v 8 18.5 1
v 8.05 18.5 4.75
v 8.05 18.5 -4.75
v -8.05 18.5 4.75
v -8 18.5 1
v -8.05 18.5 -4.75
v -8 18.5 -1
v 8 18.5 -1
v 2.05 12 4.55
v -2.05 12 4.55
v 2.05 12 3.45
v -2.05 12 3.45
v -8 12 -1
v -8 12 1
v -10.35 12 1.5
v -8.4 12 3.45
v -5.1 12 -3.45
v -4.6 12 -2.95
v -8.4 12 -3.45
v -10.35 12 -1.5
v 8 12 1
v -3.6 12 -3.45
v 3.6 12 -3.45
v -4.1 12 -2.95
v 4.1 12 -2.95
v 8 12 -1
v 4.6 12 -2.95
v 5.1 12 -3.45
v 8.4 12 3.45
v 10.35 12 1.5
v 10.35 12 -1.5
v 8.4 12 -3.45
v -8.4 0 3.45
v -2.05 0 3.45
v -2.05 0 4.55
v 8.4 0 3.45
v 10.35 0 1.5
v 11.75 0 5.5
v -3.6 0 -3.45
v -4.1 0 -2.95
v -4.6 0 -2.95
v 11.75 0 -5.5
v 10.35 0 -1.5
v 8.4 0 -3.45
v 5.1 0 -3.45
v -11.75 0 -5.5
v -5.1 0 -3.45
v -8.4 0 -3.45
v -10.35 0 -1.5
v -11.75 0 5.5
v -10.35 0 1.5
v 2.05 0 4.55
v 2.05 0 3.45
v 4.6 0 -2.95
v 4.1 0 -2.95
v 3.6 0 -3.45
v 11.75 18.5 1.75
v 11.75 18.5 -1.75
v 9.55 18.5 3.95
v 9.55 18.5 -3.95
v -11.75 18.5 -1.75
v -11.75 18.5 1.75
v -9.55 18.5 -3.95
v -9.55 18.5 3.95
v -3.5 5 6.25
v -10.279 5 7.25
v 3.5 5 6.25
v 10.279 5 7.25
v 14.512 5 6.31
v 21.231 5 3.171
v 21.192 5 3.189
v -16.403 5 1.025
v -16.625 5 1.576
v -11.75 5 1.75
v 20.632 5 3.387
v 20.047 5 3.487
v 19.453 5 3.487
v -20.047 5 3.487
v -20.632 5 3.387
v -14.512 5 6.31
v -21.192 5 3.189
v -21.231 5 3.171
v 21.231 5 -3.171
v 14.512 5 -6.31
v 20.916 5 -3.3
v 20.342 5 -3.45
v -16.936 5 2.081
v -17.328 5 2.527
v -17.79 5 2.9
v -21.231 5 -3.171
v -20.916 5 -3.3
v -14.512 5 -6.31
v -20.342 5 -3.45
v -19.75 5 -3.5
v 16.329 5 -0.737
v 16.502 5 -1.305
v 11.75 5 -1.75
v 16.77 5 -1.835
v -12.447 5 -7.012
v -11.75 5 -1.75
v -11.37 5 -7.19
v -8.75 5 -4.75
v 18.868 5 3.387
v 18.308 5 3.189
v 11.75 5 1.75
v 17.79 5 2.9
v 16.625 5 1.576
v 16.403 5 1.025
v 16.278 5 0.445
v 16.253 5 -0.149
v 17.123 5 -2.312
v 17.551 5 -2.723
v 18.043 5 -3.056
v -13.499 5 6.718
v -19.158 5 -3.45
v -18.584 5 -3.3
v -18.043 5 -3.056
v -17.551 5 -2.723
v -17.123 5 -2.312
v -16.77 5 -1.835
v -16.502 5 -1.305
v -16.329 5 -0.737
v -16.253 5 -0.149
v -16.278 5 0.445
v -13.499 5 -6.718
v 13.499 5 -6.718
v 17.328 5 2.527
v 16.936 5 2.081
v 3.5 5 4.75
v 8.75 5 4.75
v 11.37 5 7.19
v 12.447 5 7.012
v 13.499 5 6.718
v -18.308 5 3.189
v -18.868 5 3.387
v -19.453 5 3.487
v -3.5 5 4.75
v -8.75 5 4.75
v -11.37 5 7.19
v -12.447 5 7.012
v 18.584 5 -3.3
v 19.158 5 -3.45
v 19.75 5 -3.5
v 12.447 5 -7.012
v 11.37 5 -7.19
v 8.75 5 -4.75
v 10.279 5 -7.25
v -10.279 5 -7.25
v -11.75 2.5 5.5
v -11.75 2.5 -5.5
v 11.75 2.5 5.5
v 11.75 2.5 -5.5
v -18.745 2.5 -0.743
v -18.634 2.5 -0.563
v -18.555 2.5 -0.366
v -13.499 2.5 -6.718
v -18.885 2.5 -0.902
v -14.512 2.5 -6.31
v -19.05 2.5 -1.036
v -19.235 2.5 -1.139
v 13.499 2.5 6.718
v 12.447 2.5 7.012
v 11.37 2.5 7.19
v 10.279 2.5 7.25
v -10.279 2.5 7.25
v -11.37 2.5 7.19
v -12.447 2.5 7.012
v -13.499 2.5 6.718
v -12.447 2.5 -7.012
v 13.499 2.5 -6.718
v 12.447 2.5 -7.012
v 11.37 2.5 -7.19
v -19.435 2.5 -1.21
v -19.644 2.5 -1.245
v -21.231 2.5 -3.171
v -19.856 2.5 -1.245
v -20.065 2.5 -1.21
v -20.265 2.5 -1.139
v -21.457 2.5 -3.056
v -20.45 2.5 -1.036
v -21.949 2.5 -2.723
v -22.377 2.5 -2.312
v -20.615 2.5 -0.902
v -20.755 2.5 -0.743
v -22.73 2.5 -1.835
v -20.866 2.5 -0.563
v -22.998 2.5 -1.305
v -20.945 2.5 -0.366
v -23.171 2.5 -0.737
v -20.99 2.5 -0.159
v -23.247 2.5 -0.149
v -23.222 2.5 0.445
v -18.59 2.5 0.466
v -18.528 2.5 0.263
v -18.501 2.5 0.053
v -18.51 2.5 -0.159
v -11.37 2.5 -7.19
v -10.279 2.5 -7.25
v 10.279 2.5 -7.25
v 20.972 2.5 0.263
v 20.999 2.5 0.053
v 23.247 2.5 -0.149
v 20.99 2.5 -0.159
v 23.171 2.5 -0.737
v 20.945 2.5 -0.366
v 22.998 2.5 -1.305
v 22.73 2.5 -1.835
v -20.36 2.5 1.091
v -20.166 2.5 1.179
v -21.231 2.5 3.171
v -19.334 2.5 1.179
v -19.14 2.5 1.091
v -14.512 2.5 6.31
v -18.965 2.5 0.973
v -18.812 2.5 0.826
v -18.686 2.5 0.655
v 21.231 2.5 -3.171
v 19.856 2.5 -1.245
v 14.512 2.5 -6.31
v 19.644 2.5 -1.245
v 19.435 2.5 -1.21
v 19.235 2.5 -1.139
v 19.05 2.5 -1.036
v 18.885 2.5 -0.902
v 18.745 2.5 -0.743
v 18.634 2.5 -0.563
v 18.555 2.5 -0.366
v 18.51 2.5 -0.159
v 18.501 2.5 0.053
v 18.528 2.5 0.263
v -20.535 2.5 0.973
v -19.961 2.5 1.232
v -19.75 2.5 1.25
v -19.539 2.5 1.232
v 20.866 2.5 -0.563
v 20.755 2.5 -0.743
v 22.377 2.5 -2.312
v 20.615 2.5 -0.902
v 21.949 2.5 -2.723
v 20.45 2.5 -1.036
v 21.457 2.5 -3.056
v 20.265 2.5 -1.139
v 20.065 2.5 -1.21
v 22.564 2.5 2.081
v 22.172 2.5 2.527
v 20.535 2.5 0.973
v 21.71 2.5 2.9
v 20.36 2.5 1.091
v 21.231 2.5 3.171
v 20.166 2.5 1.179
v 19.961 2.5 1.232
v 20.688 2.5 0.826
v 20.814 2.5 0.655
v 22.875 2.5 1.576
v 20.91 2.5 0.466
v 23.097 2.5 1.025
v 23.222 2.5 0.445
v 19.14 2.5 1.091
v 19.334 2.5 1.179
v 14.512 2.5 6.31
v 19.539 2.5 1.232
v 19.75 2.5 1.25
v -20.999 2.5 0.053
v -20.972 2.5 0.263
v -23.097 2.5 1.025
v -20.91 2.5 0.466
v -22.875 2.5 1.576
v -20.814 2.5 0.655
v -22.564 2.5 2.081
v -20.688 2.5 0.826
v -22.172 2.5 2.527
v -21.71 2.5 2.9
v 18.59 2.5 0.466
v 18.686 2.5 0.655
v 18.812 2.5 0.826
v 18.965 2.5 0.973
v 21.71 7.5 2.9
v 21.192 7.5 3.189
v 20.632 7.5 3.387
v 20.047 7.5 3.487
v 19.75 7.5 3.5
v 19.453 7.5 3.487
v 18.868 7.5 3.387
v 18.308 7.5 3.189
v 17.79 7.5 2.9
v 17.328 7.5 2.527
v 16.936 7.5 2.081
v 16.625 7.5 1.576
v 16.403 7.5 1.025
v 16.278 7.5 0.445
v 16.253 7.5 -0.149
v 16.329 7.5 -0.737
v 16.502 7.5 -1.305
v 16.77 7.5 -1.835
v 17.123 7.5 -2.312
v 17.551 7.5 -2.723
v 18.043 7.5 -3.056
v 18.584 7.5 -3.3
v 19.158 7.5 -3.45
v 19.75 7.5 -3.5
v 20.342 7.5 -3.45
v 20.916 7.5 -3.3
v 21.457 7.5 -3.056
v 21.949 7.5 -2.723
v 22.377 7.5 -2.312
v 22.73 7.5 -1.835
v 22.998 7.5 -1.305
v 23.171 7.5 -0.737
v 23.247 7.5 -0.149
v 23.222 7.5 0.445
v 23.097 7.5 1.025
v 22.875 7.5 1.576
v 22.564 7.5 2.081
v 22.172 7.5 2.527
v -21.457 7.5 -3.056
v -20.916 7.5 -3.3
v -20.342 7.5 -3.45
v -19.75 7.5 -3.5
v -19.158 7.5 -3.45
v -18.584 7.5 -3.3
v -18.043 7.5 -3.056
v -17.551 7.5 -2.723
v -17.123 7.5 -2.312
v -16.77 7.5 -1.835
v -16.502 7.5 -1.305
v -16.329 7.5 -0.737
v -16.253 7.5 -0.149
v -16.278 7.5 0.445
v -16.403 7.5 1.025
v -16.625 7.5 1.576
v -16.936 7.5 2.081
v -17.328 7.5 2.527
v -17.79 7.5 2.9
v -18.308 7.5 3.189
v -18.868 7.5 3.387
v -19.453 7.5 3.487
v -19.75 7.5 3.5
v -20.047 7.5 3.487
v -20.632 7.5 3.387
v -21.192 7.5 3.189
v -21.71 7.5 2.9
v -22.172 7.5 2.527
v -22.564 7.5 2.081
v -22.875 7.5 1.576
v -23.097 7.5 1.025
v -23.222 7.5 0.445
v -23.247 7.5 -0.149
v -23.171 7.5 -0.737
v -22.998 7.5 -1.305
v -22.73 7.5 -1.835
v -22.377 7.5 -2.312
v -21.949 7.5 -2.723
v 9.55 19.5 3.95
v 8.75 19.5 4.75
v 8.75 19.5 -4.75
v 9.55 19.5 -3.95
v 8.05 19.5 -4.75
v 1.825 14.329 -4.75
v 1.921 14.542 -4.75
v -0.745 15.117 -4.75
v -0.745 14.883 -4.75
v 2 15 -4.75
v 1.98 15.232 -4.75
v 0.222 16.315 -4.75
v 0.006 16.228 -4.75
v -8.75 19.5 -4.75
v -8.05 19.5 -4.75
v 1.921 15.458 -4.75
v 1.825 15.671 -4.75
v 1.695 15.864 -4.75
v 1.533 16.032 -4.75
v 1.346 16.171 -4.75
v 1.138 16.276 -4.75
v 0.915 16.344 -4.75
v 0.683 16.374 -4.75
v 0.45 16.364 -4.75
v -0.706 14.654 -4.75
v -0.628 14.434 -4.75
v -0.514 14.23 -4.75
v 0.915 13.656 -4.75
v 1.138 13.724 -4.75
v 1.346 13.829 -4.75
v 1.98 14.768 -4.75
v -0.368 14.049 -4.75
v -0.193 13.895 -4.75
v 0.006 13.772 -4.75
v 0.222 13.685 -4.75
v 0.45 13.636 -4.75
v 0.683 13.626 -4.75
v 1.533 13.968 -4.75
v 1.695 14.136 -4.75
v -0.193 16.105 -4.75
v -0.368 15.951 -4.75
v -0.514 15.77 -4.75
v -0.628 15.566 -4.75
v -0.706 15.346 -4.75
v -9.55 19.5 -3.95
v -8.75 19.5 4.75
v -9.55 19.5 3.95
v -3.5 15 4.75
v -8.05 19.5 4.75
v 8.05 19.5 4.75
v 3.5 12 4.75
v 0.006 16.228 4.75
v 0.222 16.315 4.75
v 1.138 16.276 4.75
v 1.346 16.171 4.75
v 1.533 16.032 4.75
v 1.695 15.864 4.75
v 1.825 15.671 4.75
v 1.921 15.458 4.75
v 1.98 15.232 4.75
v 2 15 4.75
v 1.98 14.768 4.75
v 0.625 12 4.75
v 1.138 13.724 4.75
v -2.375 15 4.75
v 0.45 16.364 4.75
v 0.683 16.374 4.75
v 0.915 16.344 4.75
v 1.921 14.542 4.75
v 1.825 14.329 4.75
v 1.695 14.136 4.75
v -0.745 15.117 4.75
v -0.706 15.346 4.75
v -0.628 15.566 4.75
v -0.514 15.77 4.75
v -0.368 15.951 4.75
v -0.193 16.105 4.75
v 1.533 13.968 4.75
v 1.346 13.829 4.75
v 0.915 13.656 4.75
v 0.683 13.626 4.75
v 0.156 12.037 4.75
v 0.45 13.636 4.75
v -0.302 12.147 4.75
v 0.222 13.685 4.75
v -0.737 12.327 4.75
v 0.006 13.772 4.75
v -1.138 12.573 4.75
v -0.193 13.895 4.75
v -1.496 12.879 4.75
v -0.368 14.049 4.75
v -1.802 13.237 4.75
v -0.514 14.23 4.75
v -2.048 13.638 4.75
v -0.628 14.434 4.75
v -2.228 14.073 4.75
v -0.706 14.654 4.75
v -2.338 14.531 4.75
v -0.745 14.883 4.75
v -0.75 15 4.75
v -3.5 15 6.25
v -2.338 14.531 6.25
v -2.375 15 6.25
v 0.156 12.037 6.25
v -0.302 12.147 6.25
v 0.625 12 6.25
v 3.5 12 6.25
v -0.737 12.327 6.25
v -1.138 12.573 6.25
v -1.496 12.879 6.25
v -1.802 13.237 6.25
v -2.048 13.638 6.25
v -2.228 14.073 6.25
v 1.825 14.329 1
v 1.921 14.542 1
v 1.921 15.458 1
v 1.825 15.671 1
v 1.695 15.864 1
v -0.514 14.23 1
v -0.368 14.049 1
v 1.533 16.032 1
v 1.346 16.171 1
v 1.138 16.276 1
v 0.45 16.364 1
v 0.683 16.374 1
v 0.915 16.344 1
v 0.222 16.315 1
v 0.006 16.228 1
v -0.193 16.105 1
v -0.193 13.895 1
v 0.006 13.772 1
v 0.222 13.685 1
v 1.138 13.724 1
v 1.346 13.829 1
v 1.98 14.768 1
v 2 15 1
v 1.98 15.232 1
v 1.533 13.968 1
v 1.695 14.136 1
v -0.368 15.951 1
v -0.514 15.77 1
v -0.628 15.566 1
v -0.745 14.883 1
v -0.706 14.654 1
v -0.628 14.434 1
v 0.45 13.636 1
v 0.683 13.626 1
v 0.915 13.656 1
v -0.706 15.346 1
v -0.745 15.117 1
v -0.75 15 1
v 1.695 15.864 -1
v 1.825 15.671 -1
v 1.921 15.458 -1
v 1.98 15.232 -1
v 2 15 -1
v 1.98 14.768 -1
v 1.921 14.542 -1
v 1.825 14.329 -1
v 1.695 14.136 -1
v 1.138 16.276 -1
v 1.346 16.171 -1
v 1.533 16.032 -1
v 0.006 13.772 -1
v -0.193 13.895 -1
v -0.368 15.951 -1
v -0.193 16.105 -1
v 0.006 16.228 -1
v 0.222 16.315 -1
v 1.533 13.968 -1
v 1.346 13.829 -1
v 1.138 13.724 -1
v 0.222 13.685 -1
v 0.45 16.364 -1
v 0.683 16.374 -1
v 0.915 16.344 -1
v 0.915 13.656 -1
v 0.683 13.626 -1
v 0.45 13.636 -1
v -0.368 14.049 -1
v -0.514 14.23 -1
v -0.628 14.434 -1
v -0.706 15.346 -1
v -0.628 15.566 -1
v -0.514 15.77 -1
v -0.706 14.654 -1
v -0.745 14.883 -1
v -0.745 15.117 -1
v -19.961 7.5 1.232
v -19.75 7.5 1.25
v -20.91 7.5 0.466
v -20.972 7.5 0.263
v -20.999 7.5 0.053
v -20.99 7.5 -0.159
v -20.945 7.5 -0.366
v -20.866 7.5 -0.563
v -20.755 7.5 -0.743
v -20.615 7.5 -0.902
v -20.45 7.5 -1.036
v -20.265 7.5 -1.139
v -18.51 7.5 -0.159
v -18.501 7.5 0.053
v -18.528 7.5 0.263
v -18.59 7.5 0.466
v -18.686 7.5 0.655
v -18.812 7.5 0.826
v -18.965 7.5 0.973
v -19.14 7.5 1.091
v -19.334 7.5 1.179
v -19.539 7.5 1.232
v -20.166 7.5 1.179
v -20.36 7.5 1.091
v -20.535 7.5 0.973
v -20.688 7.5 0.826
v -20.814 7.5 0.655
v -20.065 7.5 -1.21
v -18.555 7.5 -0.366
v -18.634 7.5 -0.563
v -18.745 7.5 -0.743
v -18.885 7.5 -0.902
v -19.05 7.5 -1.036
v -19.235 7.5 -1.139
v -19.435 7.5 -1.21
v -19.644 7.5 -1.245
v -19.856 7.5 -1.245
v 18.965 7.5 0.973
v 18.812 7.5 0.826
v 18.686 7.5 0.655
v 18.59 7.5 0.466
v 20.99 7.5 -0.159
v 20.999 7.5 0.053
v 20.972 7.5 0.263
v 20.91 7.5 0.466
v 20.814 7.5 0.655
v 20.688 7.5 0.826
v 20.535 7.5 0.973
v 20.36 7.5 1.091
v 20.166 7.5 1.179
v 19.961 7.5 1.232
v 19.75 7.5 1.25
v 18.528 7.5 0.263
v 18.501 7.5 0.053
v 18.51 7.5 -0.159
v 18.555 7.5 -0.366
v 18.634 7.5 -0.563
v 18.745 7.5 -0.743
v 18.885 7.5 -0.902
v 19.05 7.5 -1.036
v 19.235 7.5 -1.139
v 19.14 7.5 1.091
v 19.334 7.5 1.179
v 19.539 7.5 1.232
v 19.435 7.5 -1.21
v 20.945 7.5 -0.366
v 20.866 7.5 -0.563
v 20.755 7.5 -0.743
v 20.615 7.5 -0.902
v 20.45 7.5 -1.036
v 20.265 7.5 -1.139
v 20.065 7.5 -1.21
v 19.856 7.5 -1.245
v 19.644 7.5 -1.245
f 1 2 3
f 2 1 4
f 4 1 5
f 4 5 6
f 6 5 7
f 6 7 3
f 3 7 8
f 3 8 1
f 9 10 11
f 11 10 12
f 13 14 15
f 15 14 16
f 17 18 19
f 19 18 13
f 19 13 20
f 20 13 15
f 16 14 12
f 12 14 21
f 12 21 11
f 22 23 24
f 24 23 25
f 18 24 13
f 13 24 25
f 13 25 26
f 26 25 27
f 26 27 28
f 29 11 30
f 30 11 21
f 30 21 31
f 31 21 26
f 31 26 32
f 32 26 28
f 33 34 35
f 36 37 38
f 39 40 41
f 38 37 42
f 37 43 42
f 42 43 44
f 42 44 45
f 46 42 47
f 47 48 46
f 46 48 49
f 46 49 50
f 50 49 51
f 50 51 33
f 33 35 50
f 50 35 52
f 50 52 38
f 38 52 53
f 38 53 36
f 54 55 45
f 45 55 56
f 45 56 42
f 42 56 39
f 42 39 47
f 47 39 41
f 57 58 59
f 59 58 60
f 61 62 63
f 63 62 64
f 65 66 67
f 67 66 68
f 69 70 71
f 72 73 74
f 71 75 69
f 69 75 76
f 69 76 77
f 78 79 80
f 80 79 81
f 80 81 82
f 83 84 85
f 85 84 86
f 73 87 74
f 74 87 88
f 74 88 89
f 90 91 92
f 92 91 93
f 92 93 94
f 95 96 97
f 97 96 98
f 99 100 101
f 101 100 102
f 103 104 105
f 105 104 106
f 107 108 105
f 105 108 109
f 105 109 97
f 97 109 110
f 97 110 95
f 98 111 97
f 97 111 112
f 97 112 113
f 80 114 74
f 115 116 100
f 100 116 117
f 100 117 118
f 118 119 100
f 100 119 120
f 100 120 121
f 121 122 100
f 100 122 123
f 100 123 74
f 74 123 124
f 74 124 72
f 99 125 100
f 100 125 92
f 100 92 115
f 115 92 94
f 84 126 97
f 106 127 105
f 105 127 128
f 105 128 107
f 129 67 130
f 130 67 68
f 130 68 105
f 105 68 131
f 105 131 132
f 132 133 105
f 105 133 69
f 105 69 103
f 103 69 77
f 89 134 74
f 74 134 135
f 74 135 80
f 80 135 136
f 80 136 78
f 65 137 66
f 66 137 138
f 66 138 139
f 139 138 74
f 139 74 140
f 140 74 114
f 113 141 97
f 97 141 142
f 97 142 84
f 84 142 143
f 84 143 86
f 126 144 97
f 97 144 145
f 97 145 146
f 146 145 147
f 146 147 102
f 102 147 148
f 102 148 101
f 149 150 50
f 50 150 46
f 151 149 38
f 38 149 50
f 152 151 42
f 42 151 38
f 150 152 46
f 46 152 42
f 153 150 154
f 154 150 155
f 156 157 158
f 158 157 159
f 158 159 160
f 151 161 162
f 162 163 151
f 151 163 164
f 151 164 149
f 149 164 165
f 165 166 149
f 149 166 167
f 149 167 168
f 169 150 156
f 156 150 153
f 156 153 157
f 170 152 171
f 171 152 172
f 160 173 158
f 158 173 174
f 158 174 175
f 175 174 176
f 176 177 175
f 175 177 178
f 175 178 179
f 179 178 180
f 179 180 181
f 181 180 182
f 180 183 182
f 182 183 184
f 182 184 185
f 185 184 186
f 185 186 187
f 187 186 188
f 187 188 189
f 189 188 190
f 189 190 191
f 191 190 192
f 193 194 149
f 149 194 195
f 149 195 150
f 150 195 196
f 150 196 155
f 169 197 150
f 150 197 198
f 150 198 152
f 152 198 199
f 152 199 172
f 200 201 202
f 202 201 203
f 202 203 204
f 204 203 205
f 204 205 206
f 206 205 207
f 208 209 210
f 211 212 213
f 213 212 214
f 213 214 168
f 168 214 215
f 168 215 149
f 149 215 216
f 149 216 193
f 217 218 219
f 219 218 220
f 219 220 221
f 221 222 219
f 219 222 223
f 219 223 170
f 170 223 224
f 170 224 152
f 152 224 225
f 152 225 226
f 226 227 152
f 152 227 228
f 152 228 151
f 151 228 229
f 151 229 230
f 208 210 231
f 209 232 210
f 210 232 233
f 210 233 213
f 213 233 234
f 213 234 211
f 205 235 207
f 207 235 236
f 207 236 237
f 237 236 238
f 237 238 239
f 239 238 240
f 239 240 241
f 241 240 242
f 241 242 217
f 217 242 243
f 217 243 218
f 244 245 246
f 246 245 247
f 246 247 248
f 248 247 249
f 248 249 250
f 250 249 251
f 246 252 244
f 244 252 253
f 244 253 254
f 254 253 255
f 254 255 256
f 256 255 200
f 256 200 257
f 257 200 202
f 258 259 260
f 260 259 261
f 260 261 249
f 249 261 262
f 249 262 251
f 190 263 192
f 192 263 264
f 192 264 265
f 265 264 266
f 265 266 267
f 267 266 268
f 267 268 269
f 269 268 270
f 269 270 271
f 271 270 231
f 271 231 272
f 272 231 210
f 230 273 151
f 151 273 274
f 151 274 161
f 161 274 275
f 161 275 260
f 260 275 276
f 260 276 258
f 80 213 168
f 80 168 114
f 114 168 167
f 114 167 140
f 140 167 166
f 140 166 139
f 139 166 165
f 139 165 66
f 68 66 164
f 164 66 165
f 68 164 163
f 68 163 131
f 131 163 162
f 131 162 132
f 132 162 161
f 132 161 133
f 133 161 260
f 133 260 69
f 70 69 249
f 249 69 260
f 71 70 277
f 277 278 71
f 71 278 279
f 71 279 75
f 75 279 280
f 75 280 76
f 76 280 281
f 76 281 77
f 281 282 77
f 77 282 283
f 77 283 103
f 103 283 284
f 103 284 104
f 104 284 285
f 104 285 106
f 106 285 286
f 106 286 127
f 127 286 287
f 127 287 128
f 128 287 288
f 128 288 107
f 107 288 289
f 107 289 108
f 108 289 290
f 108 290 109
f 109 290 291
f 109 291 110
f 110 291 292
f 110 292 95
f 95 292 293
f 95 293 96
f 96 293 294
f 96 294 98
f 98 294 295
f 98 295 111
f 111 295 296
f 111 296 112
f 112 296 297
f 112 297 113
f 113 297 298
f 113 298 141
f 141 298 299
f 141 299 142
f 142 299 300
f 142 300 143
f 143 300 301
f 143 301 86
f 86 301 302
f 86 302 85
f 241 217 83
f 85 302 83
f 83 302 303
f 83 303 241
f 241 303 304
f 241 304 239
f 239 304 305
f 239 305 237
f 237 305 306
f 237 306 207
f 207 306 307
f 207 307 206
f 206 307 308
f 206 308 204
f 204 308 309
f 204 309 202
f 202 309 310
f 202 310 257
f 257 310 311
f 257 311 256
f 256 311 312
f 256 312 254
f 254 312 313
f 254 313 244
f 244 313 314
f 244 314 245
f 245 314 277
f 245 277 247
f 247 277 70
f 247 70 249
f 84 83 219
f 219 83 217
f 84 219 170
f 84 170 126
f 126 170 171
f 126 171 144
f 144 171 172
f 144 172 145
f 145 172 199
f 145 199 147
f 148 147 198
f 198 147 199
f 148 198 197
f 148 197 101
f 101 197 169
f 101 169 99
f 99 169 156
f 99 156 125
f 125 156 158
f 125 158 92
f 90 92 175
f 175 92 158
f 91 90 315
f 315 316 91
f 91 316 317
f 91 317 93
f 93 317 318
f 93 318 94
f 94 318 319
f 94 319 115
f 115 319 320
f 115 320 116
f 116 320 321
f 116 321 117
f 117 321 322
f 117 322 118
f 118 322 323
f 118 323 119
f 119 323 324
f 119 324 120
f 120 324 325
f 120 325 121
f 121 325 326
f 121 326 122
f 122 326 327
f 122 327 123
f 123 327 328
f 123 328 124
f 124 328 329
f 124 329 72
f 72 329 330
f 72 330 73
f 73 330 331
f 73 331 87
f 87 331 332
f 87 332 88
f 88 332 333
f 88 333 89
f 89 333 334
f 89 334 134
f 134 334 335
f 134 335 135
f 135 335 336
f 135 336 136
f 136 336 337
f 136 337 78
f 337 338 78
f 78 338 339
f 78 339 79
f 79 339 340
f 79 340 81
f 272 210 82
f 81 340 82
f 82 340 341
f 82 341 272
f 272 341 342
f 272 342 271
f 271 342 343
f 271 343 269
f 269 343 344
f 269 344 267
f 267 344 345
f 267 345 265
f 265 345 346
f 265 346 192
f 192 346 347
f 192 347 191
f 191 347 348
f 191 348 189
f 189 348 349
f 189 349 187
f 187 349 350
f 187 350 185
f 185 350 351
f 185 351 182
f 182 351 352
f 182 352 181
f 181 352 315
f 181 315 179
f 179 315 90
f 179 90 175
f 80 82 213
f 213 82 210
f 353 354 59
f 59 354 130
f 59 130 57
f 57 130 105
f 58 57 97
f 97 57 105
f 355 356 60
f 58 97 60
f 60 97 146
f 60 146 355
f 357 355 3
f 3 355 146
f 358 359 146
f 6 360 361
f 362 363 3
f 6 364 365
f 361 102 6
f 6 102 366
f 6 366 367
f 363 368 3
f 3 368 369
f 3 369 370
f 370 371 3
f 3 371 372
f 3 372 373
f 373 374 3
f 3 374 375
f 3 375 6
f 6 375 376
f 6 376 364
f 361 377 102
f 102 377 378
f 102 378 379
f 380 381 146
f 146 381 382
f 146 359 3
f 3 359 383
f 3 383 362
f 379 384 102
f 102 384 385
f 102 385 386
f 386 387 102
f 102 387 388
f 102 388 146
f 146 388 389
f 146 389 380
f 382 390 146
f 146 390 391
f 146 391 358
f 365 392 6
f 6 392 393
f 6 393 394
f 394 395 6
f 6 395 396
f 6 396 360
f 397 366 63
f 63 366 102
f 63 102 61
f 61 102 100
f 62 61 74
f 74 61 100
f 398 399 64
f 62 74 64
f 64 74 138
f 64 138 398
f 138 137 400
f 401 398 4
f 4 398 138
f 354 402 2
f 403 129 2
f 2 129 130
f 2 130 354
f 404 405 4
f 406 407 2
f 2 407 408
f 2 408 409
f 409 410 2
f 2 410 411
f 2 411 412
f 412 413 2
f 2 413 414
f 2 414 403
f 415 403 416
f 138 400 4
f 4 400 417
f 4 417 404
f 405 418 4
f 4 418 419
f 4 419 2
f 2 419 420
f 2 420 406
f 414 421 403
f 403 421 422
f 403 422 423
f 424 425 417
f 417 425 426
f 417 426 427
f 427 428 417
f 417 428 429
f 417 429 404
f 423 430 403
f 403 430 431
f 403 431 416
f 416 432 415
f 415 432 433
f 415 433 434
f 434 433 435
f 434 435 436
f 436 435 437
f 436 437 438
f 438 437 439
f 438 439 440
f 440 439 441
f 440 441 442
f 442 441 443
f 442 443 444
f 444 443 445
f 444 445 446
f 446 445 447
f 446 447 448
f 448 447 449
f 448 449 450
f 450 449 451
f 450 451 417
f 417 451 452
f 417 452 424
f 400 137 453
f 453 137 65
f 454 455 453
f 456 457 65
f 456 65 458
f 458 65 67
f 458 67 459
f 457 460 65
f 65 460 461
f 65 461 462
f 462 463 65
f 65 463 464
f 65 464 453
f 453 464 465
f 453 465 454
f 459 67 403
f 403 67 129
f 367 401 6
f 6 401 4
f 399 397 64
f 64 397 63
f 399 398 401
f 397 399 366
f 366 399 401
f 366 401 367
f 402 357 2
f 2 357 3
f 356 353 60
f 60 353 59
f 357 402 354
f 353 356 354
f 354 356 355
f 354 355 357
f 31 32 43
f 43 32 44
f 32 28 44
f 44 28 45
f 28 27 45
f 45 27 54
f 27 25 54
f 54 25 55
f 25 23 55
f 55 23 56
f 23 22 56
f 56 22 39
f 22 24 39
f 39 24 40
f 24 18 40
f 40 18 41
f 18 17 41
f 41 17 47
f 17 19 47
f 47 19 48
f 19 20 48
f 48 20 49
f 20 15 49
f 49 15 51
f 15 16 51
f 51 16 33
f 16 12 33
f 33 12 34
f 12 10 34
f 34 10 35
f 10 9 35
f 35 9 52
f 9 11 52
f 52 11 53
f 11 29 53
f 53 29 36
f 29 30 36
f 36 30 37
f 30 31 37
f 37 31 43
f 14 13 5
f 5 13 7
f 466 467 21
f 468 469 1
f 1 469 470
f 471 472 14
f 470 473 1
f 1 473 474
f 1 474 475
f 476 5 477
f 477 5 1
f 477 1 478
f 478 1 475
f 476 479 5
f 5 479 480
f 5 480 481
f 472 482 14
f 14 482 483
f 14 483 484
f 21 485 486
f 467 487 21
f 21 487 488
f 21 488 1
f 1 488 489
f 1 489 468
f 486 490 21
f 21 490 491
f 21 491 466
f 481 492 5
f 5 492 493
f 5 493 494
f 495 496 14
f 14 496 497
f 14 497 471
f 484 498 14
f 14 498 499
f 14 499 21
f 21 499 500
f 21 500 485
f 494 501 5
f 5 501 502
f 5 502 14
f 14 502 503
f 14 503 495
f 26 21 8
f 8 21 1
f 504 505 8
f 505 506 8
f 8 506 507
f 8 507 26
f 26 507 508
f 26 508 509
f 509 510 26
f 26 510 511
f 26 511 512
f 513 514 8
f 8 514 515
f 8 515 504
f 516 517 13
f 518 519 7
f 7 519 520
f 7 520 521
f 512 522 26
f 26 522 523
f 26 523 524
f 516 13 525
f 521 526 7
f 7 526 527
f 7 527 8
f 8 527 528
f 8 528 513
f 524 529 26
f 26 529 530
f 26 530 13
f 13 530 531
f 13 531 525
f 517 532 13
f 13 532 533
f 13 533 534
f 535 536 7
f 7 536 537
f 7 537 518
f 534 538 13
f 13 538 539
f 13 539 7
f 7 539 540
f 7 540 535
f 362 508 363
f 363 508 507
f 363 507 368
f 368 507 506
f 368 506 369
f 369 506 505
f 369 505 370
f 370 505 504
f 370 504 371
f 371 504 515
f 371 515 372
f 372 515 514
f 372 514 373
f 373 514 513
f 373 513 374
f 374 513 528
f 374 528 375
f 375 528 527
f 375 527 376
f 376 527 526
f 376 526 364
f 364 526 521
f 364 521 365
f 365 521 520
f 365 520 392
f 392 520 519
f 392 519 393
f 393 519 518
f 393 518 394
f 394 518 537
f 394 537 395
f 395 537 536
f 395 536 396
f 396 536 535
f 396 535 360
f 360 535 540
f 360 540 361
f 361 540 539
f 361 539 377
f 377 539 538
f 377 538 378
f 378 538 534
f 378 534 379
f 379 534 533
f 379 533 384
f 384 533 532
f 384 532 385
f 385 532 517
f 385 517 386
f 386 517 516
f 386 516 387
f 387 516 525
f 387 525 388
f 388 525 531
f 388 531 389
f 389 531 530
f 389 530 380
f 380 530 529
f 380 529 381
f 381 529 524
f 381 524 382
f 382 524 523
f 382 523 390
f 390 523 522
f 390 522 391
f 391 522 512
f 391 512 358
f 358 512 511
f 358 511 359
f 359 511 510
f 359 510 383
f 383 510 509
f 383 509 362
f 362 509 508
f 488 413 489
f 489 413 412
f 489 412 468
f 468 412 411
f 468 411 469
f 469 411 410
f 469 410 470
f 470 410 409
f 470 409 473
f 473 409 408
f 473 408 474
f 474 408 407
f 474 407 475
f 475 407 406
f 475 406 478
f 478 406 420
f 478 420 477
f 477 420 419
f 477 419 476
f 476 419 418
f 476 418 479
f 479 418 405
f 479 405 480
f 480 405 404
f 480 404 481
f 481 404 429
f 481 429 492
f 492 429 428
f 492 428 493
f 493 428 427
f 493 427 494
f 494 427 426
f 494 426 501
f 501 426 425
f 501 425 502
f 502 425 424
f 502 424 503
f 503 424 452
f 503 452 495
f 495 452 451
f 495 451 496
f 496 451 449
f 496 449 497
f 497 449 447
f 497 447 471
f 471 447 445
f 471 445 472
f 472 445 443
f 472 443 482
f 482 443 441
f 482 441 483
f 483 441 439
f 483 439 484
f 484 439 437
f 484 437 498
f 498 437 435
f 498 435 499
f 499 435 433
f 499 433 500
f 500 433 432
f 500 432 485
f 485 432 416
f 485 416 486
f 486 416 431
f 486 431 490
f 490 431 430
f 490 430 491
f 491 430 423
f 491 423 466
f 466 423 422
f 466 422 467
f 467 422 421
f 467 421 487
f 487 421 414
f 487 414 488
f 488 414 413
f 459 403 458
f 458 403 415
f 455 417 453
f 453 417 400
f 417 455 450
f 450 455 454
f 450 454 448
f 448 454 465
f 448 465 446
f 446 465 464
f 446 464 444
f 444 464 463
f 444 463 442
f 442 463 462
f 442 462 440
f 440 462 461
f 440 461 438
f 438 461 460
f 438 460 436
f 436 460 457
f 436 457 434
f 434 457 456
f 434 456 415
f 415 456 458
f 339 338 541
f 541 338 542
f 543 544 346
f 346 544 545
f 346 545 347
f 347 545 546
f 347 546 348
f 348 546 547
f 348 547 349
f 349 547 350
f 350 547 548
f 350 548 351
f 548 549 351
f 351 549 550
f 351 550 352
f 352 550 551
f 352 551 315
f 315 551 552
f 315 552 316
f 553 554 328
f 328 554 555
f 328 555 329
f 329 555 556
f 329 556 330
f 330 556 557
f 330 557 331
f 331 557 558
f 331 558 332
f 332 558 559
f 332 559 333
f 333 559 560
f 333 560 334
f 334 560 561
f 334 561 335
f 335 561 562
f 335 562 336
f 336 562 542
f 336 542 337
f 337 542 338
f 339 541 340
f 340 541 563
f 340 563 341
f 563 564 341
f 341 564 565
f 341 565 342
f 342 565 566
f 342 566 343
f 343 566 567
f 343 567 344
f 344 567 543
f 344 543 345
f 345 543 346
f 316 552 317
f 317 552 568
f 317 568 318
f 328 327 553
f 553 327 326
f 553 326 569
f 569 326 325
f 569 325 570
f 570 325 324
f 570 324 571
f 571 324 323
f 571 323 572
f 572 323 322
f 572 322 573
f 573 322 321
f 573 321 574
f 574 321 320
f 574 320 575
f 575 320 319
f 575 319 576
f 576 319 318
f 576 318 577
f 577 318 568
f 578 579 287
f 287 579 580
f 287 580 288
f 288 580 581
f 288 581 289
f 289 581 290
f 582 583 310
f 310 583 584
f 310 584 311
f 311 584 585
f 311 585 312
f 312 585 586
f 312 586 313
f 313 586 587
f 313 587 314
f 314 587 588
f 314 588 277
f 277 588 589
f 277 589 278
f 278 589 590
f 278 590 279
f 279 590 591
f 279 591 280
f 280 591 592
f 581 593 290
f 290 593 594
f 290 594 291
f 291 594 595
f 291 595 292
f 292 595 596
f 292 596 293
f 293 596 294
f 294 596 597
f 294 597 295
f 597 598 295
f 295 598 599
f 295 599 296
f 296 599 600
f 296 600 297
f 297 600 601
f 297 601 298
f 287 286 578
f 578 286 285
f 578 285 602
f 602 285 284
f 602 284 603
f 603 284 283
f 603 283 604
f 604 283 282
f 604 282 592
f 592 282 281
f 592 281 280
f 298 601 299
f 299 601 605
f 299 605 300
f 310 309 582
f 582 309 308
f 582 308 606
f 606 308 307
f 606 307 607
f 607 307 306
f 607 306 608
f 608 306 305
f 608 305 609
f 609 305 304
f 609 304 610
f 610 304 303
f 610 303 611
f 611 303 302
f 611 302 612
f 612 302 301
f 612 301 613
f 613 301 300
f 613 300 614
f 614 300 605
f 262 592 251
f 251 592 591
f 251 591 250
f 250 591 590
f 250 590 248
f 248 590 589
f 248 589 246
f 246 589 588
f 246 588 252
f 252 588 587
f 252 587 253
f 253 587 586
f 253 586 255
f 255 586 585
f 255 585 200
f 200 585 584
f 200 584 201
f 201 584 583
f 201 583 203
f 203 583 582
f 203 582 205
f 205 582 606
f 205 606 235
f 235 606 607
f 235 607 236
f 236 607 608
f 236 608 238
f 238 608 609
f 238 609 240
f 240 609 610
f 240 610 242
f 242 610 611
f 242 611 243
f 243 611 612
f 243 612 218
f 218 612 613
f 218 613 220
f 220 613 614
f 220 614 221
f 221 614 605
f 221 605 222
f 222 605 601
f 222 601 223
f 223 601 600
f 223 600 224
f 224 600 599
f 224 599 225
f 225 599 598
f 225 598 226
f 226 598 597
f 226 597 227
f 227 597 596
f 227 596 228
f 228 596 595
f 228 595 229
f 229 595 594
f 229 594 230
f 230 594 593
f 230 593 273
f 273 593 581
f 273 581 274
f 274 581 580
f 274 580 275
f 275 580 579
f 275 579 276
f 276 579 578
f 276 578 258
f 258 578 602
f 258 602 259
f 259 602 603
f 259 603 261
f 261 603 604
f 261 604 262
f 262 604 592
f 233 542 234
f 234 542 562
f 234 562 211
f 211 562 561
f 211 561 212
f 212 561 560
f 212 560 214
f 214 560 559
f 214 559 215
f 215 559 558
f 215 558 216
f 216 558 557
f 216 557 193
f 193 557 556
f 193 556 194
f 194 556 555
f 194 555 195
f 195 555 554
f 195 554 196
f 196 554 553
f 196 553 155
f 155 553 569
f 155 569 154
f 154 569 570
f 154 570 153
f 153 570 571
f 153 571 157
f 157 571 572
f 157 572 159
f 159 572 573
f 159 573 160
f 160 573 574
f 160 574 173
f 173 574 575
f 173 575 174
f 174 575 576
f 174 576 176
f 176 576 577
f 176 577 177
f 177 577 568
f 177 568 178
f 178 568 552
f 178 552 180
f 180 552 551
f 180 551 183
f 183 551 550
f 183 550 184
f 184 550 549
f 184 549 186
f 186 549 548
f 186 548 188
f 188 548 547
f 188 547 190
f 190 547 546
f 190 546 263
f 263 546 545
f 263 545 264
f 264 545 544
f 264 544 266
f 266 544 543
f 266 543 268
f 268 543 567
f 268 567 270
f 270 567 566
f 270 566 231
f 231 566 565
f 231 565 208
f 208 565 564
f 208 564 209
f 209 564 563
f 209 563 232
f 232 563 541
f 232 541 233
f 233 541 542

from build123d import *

# Parameters (mm, degrees)
SKETCH1_W               = 23.5
SKETCH1_H               = 11
BOSS_EXTRUDE1_DEPTH     = 2.5
BOSS_EXTRUDE2_DEPTH     = 2.5
BOSS_EXTRUDE3_DEPTH     = 13.5
BOSS_EXTRUDE4_DEPTH     = 1
CUT_EXTRUDE1_DEPTH      = 12
SKETCH7_W               = 16
SKETCH7_H               = 2
CUT_EXTRUDE2_DEPTH      = 32.198958316
SKETCH8_R               = 1.375
CUT_EXTRUDE3_DEPTH      = 12
CUT_EXTRUDE5_DEPTH      = 1.5
SKETCH10_R              = 3.5
BOSS_EXTRUDE5_DEPTH     = 2.5
CUT_EXTRUDE6_DEPTH      = 29.34387059
CUT_EXTRUDE6_DEPTH_BACK = 29.34387059
SKETCH11_R              = 1.25


with BuildPart() as part:
    # Sketch1 → Boss-Extrude1 (new body)
    with BuildSketch(Plane(origin=(0, 0, 0), x_dir=(1, 0, 0), z_dir=(0, 1, 0))):
        Rectangle(SKETCH1_W, SKETCH1_H)
    extrude(amount=BOSS_EXTRUDE1_DEPTH)

    # Sketch2 → Boss-Extrude2 (add)
    with BuildSketch(Plane(origin=(0, 2.5, 0), x_dir=(1, 0, 0), z_dir=(0, 1, 0))):
        with BuildLine():
            Line((21.231385291, -3.171040463), (14.511908348, -6.310115609))
            ThreePointArc((14.511908348, -6.310115609), (12.447193964, -7.012201496), (10.279378945, -7.25))
            Line((10.279378945, -7.25), (-10.279378945, -7.25))
            ThreePointArc((-10.279378945, -7.25), (-12.447193964, -7.012201496), (-14.511908348, -6.310115609))
            Line((-14.511908348, -6.310115609), (-21.231385291, -3.171040463))
            ThreePointArc((-21.231385291, -3.171040463), (-23.25, 0), (-21.231385291, 3.171040463))
            Line((-21.231385291, 3.171040463), (-14.511908348, 6.310115609))
            ThreePointArc((-14.511908348, 6.310115609), (-12.447193964, 7.012201496), (-10.279378945, 7.25))
            Line((-10.279378945, 7.25), (10.279378945, 7.25))
            ThreePointArc((10.279378945, 7.25), (12.447193964, 7.012201496), (14.511908348, 6.310115609))
            Line((14.511908348, 6.310115609), (21.231385291, 3.171040463))
            ThreePointArc((21.231385291, 3.171040463), (23.25, 0), (21.231385291, -3.171040463))
        make_face()
    extrude(amount=BOSS_EXTRUDE2_DEPTH)

    # Sketch3 → Boss-Extrude3 (add)
    with BuildSketch(Plane(origin=(0, 5, 0), x_dir=(1, 0, 0), z_dir=(0, 1, 0))):
        Polygon((8.75, -4.75), (3.5, -4.75), (3.5, -6.25), (-3.5, -6.25), (-3.5, -4.75), (-8.75, -4.75), (-11.75, -1.75), (-11.75, 1.75), (-8.75, 4.75), (8.75, 4.75), (11.75, 1.75), (11.75, -1.75), align=None)
    extrude(amount=BOSS_EXTRUDE3_DEPTH)

    # Sketch5 → Boss-Extrude4 (add)
    with BuildSketch(Plane(origin=(0, 18.5, 0), x_dir=(1, 0, 0), z_dir=(0, 1, 0))):
        Polygon((8.75, 4.75), (8.05, 4.75), (8.05, -4.75), (8.75, -4.75), (9.55, -3.95), (9.55, 3.95), align=None)
        Polygon((-8.05, 4.75), (-8.75, 4.75), (-9.55, 3.95), (-9.55, -3.95), (-8.75, -4.75), (-8.05, -4.75), align=None)
    extrude(amount=BOSS_EXTRUDE4_DEPTH)

    # Sketch6 → Cut-Extrude1 (cut)
    with BuildSketch(Plane(origin=(0, 0, 0), x_dir=(1, 0, 0), z_dir=(0, 1, 0))):
        Polygon((8.4, 3.45), (5.1, 3.45), (4.6, 2.95), (4.1, 2.95), (3.6, 3.45), (-3.6, 3.45), (-4.1, 2.95), (-4.6, 2.95), (-5.1, 3.45), (-8.4, 3.45), (-10.35, 1.5), (-10.35, -1.5), (-8.4, -3.45), (-2.05, -3.45), (-2.05, -4.55), (2.05, -4.55), (2.05, -3.45), (8.4, -3.45), (10.35, -1.5), (10.35, 1.5), align=None)
    extrude(amount=CUT_EXTRUDE1_DEPTH, mode=Mode.SUBTRACT)

    # Sketch7 → Cut-Extrude2 (cut, through all)
    with BuildSketch(Plane(origin=(0, 0, 0), x_dir=(1, 0, 0), z_dir=(0, 1, 0))):
        Rectangle(SKETCH7_W, SKETCH7_H)
    extrude(amount=CUT_EXTRUDE2_DEPTH, mode=Mode.SUBTRACT)

    # Sketch8 → Cut-Extrude3 (cut)
    with BuildSketch(Plane.XY.offset(6.25)):
        with Locations((0.625, 15)):
            Circle(SKETCH8_R)
    extrude(amount=-CUT_EXTRUDE3_DEPTH, mode=Mode.SUBTRACT)

    # Sketch9 → Cut-Extrude5 (cut)
    with BuildSketch(Plane.XY.offset(6.25)):
        with BuildLine():
            Line((0.625, 12), (3.5, 12))
            Line((3.5, 12), (3.5, 18.5))
            Line((3.5, 18.5), (-3.5, 18.5))
            Line((-3.5, 18.5), (-3.5, 15))
            Line((-3.5, 15), (-2.375, 15))
            ThreePointArc((-2.375, 15), (-1.496320344, 12.878679656), (0.625, 12))
        make_face()
    extrude(amount=-CUT_EXTRUDE5_DEPTH, mode=Mode.SUBTRACT)

    # Sketch10 → Boss-Extrude5 (add)
    with BuildSketch(Plane(origin=(0, 5, 0), x_dir=(1, 0, 0), z_dir=(0, 1, 0))):
        with Locations(Location((-19.75, 0, 0), (0, 0, 115.040130233))):
            Circle(SKETCH10_R)
        with Locations(Location((19.75, 0, 0), (0, 0, 64.959869767))):
            Circle(SKETCH10_R)
    extrude(amount=BOSS_EXTRUDE5_DEPTH)

    # Sketch11 → Cut-Extrude6 (cut, two sides: drawn at the far end of the back side and taken through both)
    with BuildSketch(Plane(origin=(0, 5, 0), x_dir=(1, 0, 0), z_dir=(0, 1, 0)).offset(-CUT_EXTRUDE6_DEPTH_BACK)):
        with Locations(Location((19.75, 0, 0), (0, 0, 270))):
            Circle(SKETCH11_R)
        with Locations(Location((-19.75, 0, 0), (0, 0, 270))):
            Circle(SKETCH11_R)
    extrude(amount=CUT_EXTRUDE6_DEPTH + CUT_EXTRUDE6_DEPTH_BACK, mode=Mode.SUBTRACT)


solid = part.part
